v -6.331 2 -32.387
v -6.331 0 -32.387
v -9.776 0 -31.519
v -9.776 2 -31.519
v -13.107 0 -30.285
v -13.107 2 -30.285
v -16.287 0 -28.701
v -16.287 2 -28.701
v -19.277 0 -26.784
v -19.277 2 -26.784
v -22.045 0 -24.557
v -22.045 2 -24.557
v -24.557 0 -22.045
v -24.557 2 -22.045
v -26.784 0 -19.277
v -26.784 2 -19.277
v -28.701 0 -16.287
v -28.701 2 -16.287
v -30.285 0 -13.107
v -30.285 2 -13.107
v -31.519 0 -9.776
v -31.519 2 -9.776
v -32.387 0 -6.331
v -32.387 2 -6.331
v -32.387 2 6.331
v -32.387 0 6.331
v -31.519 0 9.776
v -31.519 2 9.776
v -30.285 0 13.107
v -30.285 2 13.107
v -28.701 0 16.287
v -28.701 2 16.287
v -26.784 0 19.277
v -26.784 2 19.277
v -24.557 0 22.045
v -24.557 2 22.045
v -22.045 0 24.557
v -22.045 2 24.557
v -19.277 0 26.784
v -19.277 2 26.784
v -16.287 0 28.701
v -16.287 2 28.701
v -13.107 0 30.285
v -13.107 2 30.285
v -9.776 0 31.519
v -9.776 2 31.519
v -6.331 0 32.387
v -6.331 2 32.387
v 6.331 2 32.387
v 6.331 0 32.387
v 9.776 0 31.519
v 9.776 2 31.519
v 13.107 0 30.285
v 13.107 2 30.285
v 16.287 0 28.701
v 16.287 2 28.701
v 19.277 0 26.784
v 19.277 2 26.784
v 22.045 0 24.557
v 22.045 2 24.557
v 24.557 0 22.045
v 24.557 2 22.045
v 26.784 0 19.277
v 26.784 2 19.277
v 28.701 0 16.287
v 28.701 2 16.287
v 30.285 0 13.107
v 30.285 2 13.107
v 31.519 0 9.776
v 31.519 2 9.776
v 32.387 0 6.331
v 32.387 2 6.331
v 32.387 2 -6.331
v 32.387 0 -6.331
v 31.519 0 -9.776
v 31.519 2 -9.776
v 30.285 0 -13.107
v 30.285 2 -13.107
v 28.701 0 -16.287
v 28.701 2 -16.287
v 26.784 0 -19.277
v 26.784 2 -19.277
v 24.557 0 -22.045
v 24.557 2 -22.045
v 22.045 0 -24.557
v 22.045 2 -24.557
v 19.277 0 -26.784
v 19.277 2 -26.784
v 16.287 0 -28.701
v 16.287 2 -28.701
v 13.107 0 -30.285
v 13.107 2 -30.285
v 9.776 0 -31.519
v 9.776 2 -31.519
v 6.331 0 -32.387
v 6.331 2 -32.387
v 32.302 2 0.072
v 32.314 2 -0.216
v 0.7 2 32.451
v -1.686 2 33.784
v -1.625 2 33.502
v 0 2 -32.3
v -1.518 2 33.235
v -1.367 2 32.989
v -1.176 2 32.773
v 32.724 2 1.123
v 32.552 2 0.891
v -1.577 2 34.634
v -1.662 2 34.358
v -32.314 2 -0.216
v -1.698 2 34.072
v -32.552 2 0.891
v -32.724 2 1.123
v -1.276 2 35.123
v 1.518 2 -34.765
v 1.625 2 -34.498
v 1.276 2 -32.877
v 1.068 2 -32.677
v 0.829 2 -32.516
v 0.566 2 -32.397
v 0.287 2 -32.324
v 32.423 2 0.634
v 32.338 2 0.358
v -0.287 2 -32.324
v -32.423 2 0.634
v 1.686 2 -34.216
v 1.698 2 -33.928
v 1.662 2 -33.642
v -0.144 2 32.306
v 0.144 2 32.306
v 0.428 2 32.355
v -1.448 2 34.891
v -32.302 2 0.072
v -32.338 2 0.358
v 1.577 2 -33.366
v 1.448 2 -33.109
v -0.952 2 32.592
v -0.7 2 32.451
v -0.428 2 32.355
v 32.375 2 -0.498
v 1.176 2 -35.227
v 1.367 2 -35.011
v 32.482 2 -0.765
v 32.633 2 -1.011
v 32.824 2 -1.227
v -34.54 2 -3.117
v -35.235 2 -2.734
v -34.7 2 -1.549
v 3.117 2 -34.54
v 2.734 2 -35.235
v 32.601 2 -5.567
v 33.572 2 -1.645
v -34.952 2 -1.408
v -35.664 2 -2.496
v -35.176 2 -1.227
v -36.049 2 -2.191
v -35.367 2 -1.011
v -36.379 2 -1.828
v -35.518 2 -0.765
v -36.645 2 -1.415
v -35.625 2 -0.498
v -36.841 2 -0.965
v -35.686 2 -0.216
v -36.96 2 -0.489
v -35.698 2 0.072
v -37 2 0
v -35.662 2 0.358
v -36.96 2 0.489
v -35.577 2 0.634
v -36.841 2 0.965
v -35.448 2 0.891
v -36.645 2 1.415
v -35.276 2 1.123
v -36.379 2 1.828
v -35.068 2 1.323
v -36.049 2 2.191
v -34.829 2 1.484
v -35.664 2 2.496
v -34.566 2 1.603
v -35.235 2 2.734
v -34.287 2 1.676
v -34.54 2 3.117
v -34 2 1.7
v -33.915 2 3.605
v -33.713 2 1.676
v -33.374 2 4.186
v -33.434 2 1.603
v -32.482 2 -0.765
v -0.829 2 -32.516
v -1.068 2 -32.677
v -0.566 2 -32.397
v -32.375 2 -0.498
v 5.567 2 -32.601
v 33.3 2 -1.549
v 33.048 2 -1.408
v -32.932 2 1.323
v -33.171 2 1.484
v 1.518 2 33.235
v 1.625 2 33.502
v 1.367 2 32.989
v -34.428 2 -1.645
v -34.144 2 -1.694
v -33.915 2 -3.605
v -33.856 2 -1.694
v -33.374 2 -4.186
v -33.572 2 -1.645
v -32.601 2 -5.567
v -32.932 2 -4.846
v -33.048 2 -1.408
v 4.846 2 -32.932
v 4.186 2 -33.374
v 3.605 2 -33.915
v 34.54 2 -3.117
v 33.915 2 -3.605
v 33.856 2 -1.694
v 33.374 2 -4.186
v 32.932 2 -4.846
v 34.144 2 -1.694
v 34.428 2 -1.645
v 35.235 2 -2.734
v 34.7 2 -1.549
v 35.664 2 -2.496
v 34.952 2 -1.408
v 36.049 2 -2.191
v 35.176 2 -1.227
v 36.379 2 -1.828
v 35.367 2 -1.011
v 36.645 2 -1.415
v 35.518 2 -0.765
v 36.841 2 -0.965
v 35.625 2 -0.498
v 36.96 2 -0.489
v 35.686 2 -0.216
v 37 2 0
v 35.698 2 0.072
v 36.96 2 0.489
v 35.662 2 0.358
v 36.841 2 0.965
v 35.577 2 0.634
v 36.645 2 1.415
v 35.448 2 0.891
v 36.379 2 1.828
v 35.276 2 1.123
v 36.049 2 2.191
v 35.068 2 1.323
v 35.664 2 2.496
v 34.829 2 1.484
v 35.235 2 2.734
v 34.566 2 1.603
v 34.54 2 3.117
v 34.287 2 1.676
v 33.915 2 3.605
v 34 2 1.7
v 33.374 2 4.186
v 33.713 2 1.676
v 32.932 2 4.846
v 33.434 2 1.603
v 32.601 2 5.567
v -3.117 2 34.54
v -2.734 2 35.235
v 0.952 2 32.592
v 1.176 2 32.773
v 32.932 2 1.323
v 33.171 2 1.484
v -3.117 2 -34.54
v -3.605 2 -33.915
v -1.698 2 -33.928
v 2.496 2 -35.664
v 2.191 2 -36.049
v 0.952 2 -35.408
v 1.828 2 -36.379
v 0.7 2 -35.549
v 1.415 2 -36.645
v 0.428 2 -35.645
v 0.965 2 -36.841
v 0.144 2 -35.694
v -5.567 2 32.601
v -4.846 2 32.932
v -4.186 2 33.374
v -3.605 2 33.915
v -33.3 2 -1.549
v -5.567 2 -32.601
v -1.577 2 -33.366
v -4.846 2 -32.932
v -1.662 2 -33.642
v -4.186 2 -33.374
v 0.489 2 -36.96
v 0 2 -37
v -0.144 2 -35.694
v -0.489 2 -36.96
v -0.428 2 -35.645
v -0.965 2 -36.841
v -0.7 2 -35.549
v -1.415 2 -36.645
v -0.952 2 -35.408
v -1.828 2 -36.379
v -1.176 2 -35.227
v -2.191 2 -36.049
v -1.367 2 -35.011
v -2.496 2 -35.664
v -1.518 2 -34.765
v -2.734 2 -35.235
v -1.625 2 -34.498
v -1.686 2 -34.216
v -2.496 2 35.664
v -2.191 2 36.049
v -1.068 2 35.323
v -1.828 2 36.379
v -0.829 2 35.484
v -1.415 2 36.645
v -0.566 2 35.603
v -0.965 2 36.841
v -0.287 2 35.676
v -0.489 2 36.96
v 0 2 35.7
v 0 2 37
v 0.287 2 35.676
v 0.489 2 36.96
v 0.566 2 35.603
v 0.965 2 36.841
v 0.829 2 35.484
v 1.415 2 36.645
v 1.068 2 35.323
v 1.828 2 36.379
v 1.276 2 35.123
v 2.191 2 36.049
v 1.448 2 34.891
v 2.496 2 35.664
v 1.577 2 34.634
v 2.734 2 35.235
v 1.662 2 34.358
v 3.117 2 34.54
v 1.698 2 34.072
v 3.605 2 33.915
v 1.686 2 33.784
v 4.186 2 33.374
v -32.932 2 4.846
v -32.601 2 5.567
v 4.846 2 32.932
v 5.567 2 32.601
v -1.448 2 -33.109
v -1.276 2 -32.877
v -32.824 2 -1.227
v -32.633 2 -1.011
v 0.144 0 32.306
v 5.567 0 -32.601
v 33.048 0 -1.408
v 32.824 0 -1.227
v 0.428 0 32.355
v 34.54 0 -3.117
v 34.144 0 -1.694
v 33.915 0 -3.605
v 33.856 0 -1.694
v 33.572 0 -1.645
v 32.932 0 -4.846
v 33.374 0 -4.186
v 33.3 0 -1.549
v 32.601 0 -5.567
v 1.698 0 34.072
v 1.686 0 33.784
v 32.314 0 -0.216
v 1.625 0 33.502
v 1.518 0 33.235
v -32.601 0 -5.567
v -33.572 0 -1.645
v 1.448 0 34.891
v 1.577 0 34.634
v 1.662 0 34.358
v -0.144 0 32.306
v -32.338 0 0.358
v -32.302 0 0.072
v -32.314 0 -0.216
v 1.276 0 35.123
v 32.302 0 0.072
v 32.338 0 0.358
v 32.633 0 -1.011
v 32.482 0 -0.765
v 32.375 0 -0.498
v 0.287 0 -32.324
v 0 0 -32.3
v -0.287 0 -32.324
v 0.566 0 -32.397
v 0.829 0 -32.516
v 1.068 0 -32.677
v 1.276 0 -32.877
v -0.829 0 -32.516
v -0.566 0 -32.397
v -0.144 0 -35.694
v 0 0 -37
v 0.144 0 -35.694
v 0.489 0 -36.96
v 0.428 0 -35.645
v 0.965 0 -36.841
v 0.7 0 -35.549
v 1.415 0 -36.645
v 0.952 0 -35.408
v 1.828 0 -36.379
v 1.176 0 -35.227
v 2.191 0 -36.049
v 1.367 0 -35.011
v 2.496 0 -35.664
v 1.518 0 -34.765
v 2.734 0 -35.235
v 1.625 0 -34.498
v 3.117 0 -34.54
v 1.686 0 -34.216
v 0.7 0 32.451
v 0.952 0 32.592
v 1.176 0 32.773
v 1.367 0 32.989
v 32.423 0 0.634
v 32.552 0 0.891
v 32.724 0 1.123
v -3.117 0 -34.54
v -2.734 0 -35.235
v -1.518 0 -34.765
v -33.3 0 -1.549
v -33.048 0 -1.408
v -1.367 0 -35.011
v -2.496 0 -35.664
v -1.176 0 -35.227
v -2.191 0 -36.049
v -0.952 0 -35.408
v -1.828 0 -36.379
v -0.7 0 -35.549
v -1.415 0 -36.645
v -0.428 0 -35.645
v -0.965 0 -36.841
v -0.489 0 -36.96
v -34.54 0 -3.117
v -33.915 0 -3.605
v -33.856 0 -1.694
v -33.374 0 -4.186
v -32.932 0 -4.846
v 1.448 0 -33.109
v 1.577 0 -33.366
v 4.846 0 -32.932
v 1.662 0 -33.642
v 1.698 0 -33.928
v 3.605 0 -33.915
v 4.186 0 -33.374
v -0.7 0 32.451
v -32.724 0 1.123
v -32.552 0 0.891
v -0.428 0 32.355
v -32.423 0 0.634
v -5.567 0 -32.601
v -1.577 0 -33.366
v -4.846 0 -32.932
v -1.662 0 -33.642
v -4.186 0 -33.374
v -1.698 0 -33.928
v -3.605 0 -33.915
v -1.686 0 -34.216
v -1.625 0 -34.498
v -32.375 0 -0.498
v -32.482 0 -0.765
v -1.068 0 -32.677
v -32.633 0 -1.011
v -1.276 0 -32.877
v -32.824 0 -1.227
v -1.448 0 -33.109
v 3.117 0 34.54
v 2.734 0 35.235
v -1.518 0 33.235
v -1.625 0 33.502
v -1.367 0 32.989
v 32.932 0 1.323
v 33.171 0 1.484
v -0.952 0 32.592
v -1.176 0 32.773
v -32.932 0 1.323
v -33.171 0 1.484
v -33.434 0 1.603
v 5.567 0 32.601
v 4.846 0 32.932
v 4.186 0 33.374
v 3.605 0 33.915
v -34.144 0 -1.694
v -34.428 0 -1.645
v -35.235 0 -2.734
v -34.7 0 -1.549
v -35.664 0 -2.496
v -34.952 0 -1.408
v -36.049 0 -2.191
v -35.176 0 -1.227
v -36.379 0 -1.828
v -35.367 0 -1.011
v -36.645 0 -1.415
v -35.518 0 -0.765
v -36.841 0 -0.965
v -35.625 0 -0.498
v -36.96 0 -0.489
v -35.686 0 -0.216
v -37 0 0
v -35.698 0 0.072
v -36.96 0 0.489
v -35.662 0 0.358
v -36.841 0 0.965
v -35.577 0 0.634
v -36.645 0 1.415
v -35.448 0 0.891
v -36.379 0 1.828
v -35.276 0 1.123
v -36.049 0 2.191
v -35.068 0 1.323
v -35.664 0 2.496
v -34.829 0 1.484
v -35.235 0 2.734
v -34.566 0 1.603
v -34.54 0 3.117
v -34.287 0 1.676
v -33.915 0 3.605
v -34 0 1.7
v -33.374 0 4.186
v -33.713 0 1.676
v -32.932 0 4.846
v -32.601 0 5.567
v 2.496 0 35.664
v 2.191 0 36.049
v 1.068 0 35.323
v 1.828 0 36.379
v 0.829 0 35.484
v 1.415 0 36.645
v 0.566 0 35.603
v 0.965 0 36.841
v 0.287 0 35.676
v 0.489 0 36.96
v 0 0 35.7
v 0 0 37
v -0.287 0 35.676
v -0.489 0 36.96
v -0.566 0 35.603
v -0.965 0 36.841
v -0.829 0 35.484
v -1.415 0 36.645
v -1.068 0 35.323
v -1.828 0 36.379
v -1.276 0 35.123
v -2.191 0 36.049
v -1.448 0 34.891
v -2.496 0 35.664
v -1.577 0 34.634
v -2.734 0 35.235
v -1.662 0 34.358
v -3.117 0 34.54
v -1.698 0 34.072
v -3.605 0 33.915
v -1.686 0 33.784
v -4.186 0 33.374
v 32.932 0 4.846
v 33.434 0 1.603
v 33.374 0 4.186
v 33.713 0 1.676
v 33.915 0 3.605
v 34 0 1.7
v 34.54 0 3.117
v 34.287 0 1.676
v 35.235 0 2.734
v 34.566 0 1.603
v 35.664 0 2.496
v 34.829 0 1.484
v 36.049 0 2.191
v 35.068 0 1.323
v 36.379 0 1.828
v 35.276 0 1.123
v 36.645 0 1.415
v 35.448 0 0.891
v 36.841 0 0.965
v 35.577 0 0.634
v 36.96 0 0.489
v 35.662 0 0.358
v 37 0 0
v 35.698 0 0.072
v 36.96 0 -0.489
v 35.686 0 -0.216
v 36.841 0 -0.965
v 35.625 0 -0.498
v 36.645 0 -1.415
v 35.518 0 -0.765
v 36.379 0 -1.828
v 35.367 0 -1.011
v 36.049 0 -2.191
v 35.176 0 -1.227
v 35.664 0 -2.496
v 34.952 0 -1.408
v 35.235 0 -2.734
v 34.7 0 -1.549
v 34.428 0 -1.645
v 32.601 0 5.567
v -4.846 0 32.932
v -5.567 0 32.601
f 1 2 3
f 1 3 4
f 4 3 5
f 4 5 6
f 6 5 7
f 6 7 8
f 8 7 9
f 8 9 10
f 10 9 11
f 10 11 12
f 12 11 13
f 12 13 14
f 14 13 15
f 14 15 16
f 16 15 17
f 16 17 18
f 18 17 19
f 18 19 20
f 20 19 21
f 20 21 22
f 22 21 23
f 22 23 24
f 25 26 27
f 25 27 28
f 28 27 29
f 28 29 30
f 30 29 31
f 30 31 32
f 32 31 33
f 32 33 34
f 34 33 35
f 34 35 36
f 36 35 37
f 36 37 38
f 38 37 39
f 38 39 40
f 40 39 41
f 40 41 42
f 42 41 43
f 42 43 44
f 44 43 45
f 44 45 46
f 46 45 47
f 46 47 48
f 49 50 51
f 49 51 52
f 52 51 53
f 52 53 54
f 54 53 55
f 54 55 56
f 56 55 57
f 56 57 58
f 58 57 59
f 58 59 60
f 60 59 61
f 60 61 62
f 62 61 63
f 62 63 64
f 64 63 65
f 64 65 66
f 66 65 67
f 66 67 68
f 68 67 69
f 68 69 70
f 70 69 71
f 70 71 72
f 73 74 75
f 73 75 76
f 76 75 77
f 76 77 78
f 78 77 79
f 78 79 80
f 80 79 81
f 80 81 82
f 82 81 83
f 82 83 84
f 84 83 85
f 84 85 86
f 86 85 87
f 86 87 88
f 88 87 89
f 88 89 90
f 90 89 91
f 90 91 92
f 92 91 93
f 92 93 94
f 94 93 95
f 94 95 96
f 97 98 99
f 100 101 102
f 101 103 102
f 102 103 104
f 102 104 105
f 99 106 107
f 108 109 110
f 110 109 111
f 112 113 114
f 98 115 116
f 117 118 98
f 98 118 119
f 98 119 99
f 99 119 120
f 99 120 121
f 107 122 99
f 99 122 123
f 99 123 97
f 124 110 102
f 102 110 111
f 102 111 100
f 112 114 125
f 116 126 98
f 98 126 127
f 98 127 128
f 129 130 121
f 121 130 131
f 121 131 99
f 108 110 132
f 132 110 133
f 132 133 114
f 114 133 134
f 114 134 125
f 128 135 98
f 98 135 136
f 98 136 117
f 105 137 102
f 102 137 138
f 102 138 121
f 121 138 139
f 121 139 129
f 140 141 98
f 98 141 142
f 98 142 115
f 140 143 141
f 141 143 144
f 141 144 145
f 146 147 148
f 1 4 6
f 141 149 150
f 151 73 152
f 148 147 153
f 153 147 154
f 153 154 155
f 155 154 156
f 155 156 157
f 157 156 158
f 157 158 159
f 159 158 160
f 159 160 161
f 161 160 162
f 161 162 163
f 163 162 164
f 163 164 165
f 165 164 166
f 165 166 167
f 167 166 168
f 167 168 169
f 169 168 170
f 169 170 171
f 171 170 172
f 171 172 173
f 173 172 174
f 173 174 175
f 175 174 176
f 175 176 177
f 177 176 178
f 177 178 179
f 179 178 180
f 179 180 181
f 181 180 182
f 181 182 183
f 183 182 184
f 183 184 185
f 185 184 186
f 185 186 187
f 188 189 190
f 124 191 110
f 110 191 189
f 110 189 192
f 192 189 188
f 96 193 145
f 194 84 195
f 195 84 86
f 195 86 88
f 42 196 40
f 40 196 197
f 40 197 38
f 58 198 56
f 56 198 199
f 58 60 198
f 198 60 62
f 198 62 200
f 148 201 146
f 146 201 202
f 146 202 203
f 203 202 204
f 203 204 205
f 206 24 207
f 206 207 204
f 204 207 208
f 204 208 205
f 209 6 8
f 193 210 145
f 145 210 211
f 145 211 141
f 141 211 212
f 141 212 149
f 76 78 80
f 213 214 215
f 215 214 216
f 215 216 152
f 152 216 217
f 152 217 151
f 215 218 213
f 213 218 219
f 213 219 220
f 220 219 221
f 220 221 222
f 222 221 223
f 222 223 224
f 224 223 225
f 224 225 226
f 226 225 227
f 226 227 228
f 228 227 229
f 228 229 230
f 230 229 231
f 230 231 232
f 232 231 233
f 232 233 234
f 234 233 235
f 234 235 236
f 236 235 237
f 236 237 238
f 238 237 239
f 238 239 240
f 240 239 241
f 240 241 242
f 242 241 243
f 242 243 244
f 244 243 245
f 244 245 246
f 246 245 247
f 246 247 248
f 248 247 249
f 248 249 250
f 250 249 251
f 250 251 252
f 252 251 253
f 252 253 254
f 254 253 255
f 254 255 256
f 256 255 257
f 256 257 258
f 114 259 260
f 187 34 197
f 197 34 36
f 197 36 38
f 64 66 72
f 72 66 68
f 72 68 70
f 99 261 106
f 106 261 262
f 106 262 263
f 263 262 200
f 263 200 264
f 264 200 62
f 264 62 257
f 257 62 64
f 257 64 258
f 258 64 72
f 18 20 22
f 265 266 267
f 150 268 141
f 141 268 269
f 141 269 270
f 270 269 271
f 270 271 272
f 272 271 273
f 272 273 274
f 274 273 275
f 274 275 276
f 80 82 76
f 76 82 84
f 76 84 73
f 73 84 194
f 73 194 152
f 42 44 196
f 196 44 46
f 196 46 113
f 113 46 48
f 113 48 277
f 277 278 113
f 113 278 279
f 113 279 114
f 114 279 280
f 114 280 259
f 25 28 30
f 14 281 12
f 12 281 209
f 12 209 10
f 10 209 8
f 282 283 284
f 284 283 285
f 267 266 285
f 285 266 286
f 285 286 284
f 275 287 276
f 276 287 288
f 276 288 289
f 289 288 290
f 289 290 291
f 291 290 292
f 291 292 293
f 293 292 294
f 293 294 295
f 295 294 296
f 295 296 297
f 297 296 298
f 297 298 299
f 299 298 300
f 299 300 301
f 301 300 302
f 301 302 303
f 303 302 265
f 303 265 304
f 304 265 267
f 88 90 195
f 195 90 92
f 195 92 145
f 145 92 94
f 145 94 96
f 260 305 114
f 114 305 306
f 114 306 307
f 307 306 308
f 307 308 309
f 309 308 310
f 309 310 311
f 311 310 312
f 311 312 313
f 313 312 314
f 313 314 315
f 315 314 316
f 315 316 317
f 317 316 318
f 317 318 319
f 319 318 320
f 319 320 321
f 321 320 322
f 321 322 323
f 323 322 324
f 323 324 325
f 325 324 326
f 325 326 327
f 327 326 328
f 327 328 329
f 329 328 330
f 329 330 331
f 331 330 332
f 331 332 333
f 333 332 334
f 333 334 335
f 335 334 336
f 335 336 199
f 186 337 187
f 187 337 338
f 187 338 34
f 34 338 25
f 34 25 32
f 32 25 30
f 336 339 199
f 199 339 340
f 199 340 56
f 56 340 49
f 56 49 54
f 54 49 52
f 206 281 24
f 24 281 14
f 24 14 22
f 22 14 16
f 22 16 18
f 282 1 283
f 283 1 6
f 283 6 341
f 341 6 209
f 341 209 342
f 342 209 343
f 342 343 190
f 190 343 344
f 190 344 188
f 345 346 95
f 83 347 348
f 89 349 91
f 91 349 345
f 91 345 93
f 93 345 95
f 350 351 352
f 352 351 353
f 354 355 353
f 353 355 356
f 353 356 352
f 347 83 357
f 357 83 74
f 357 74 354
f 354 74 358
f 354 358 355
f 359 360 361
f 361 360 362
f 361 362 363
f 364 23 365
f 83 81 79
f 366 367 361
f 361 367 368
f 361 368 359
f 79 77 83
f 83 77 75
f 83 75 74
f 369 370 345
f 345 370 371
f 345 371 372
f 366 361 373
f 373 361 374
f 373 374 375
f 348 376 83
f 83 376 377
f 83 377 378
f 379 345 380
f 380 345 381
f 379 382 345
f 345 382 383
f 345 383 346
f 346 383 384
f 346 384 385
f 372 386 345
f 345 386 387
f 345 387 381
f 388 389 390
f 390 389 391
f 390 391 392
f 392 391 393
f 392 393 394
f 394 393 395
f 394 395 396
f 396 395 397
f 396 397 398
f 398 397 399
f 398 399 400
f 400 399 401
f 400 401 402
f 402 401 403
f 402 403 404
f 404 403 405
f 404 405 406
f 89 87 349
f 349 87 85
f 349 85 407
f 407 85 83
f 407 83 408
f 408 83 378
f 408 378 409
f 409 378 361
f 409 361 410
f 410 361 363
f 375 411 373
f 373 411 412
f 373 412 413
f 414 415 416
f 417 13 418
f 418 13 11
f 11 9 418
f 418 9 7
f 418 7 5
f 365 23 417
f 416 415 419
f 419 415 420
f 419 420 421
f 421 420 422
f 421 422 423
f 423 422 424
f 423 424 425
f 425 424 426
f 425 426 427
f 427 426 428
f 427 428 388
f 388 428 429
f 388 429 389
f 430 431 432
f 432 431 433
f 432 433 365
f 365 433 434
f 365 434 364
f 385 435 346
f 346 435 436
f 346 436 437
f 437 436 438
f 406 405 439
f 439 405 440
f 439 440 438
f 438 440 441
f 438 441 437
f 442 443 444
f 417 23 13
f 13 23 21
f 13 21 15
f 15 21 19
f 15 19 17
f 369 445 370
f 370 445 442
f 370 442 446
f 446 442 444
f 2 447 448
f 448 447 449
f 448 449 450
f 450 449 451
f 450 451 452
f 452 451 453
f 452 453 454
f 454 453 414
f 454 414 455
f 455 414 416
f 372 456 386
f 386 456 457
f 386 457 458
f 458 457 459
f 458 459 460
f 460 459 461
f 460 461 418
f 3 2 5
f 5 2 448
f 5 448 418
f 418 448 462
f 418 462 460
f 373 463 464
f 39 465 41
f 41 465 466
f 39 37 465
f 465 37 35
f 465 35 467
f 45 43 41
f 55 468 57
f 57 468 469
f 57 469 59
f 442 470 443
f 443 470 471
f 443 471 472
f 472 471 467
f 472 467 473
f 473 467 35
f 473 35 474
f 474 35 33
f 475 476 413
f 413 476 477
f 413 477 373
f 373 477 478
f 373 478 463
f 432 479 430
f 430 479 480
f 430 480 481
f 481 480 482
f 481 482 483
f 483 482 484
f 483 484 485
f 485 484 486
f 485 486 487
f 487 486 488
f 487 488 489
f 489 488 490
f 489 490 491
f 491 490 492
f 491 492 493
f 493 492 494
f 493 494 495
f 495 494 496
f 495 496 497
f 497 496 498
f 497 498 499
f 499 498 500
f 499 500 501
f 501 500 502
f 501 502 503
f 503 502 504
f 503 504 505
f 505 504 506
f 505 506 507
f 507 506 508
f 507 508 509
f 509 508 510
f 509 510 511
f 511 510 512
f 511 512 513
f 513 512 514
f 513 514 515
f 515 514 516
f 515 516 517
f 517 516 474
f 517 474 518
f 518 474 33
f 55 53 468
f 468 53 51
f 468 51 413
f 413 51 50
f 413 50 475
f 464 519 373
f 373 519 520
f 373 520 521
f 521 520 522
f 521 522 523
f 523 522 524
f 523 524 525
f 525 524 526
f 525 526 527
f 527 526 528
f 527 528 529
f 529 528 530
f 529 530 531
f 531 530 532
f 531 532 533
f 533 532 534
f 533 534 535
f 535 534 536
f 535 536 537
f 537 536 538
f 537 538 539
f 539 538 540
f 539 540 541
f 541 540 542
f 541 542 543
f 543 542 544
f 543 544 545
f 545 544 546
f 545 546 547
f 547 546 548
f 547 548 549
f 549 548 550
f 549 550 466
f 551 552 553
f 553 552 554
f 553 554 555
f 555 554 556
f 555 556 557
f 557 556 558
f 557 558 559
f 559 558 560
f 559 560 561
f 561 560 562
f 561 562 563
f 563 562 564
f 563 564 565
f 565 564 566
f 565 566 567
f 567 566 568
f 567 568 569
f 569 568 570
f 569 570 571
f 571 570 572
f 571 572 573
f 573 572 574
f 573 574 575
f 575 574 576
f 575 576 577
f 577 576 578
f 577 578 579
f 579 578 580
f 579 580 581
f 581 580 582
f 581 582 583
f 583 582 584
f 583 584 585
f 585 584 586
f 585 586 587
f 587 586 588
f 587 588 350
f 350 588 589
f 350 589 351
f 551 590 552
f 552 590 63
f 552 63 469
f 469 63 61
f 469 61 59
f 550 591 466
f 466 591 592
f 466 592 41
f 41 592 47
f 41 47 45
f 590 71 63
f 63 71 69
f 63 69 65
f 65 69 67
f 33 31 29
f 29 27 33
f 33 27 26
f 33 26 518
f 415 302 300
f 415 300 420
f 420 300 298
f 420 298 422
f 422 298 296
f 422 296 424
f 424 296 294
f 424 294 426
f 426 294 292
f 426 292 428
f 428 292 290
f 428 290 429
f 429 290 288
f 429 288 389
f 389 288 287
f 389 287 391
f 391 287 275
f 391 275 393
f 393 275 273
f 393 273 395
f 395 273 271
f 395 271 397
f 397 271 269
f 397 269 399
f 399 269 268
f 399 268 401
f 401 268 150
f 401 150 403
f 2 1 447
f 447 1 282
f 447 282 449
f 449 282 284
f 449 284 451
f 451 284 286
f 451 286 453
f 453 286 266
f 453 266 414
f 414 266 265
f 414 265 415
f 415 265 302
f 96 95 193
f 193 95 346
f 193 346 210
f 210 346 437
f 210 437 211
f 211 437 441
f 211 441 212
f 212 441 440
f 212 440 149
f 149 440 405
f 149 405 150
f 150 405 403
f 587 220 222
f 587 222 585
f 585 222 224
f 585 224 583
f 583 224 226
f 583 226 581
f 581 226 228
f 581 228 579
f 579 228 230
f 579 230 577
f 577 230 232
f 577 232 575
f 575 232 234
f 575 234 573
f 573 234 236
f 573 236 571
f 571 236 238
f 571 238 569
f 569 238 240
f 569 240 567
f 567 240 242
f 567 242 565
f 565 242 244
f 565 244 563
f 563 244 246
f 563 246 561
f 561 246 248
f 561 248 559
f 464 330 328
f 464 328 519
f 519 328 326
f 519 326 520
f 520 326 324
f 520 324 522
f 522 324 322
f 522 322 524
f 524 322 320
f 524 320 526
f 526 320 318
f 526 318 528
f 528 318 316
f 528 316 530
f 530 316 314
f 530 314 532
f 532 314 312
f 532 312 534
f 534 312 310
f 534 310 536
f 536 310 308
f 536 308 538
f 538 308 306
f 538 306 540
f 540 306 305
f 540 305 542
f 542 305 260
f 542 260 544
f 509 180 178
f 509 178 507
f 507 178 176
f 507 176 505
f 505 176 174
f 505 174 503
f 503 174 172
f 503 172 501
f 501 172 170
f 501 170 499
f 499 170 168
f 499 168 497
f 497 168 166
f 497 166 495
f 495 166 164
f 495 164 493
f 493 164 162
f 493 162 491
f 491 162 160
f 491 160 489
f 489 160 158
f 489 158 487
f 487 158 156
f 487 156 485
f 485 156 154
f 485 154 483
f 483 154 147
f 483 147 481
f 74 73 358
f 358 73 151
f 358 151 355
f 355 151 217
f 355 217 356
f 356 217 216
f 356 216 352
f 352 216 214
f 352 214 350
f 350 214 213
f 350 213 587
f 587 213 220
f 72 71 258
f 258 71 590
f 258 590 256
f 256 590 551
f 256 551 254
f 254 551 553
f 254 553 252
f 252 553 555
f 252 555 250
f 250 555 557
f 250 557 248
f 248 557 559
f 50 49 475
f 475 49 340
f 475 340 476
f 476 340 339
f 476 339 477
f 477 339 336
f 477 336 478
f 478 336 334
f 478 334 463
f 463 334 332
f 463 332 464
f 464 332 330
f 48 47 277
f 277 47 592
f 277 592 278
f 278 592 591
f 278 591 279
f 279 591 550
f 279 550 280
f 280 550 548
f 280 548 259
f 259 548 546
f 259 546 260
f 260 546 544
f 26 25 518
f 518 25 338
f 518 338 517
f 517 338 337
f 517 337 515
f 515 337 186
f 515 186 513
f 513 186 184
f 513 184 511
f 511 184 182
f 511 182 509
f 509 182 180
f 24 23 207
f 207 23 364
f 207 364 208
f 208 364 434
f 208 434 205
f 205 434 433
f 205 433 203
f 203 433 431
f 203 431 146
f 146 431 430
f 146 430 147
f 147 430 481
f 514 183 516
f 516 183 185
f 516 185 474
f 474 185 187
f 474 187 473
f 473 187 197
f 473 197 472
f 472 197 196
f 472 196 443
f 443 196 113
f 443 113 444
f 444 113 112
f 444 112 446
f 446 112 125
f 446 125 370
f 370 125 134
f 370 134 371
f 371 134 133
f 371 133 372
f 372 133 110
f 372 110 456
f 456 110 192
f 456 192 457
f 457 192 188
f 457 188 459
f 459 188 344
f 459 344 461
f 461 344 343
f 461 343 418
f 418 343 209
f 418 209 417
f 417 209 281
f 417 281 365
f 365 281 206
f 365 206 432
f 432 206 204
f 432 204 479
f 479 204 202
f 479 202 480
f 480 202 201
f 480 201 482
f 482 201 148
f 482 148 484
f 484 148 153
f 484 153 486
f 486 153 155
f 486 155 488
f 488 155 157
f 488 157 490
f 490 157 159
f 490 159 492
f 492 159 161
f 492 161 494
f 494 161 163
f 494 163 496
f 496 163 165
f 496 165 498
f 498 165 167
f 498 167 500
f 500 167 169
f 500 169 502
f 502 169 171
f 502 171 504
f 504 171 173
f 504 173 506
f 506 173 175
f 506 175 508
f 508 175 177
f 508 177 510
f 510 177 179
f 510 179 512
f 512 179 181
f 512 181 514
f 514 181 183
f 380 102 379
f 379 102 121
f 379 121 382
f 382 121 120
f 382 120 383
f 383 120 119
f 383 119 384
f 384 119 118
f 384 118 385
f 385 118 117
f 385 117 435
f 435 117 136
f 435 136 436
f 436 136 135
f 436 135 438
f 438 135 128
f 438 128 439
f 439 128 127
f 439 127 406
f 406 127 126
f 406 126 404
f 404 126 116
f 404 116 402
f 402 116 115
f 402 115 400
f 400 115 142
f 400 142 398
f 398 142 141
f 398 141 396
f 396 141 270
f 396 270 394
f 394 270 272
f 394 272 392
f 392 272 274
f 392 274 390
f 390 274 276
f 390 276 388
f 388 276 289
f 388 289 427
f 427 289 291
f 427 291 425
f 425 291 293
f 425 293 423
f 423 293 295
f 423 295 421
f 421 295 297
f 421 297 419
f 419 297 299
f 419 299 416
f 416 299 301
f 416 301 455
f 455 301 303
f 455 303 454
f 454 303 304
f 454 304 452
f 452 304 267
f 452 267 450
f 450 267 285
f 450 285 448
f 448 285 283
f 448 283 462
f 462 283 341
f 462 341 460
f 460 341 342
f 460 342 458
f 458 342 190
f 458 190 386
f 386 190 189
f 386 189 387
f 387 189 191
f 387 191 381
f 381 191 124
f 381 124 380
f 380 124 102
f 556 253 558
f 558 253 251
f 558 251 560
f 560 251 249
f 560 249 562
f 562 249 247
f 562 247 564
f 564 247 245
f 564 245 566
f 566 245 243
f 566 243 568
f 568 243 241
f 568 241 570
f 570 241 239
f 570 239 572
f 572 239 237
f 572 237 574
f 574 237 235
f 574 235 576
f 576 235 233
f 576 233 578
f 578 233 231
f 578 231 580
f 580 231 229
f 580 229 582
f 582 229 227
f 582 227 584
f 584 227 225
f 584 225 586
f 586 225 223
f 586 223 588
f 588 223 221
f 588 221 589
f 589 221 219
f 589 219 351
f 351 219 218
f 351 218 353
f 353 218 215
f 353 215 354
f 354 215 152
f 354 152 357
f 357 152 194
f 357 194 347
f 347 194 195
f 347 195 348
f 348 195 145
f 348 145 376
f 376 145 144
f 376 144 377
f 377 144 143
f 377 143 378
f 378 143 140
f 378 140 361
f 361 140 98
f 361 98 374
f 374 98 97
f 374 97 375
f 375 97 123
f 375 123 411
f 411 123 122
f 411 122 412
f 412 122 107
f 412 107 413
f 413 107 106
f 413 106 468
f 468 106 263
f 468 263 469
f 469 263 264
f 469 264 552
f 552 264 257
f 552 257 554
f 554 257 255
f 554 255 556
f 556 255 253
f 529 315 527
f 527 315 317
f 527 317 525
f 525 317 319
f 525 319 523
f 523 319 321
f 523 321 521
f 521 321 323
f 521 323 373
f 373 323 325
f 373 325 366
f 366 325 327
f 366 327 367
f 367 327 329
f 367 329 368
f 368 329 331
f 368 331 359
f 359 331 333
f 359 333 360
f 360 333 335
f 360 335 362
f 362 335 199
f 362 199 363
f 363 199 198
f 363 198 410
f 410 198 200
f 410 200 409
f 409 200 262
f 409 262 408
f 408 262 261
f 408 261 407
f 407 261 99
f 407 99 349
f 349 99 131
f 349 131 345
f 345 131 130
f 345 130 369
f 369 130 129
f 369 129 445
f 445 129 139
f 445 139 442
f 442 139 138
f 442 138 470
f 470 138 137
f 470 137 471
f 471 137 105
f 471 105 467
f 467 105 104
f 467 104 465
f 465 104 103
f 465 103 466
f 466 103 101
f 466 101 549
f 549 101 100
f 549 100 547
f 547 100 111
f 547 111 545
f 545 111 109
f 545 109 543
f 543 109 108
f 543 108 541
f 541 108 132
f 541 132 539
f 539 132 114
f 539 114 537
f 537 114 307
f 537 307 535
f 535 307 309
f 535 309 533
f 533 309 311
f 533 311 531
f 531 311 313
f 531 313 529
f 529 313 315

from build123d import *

# Parameters (mm, degrees)
SKETCH1_R                = 33
BOSS_EXTRUDE1_DEPTH      = 2
SKETCH2_R                = 3
BOSS_EXTRUDE2_DEPTH      = 2
FILLET1_R                = 5
CIRPATTERN1_COUNT        = 4
FILLET1_OF_CIRPATTERN1_R = 5
M3_CLEARANCE_HOLE1_D     = 3.4


with BuildPart() as part:
    # Sketch1 → Boss-Extrude1 (new body)
    with BuildSketch(Plane(origin=(0, 0, 0), x_dir=(1, 0, 0), z_dir=(0, 1, 0))):
        Circle(SKETCH1_R)
    extrude(amount=BOSS_EXTRUDE1_DEPTH)

    # Sketch2 → Boss-Extrude2 (add, through all)
    with BuildSketch(Plane(origin=(0, 2, 0), x_dir=(1, 0, 0), z_dir=(0, 1, 0))):
        with Locations((0, 34)):
            Circle(SKETCH2_R)
    boss_extrude2 = extrude(amount=-BOSS_EXTRUDE2_DEPTH)

    # Fillet1
    fillet1_edges = [part.edges().sort_by_distance(p)[0] for p in [
        (2.784037545, 1, -32.882352941),
        (-2.784037545, 1, -32.882352941),
    ]]
    fillet(fillet1_edges, radius=FILLET1_R)

    # CirPattern1: Boss-Extrude2 ×4 about axis
    cirpattern1_axis = Axis((0, 0, 0), (0, 1, 0))
    for i in range(1, CIRPATTERN1_COUNT):
        add(boss_extrude2.rotate(cirpattern1_axis, i * 360 / CIRPATTERN1_COUNT))

    # Fillet1 of CirPattern1
    fillet1_of_cirpattern1_edges = [part.edges().sort_by_distance(p)[0] for p in [
        (-32.882352941, 1, -2.784037545),
        (-32.882352941, 1, 2.784037545),
        (-2.784037545, 1, 32.882352941),
        (2.784037545, 1, 32.882352941),
        (32.882352941, 1, 2.784037545),
        (32.882352941, 1, -2.784037545),
    ]]
    fillet(fillet1_of_cirpattern1_edges, radius=FILLET1_OF_CIRPATTERN1_R)

    # M3 Clearance Hole1 (through all)
    with Locations(Plane(origin=(0, 2, 0), x_dir=(1, 0, 0), z_dir=(0, 1, 0))):
        with Locations((0, -34), (34, 0), (0, 34), (-34, 0)):
            Hole(M3_CLEARANCE_HOLE1_D / 2)


solid = part.part
